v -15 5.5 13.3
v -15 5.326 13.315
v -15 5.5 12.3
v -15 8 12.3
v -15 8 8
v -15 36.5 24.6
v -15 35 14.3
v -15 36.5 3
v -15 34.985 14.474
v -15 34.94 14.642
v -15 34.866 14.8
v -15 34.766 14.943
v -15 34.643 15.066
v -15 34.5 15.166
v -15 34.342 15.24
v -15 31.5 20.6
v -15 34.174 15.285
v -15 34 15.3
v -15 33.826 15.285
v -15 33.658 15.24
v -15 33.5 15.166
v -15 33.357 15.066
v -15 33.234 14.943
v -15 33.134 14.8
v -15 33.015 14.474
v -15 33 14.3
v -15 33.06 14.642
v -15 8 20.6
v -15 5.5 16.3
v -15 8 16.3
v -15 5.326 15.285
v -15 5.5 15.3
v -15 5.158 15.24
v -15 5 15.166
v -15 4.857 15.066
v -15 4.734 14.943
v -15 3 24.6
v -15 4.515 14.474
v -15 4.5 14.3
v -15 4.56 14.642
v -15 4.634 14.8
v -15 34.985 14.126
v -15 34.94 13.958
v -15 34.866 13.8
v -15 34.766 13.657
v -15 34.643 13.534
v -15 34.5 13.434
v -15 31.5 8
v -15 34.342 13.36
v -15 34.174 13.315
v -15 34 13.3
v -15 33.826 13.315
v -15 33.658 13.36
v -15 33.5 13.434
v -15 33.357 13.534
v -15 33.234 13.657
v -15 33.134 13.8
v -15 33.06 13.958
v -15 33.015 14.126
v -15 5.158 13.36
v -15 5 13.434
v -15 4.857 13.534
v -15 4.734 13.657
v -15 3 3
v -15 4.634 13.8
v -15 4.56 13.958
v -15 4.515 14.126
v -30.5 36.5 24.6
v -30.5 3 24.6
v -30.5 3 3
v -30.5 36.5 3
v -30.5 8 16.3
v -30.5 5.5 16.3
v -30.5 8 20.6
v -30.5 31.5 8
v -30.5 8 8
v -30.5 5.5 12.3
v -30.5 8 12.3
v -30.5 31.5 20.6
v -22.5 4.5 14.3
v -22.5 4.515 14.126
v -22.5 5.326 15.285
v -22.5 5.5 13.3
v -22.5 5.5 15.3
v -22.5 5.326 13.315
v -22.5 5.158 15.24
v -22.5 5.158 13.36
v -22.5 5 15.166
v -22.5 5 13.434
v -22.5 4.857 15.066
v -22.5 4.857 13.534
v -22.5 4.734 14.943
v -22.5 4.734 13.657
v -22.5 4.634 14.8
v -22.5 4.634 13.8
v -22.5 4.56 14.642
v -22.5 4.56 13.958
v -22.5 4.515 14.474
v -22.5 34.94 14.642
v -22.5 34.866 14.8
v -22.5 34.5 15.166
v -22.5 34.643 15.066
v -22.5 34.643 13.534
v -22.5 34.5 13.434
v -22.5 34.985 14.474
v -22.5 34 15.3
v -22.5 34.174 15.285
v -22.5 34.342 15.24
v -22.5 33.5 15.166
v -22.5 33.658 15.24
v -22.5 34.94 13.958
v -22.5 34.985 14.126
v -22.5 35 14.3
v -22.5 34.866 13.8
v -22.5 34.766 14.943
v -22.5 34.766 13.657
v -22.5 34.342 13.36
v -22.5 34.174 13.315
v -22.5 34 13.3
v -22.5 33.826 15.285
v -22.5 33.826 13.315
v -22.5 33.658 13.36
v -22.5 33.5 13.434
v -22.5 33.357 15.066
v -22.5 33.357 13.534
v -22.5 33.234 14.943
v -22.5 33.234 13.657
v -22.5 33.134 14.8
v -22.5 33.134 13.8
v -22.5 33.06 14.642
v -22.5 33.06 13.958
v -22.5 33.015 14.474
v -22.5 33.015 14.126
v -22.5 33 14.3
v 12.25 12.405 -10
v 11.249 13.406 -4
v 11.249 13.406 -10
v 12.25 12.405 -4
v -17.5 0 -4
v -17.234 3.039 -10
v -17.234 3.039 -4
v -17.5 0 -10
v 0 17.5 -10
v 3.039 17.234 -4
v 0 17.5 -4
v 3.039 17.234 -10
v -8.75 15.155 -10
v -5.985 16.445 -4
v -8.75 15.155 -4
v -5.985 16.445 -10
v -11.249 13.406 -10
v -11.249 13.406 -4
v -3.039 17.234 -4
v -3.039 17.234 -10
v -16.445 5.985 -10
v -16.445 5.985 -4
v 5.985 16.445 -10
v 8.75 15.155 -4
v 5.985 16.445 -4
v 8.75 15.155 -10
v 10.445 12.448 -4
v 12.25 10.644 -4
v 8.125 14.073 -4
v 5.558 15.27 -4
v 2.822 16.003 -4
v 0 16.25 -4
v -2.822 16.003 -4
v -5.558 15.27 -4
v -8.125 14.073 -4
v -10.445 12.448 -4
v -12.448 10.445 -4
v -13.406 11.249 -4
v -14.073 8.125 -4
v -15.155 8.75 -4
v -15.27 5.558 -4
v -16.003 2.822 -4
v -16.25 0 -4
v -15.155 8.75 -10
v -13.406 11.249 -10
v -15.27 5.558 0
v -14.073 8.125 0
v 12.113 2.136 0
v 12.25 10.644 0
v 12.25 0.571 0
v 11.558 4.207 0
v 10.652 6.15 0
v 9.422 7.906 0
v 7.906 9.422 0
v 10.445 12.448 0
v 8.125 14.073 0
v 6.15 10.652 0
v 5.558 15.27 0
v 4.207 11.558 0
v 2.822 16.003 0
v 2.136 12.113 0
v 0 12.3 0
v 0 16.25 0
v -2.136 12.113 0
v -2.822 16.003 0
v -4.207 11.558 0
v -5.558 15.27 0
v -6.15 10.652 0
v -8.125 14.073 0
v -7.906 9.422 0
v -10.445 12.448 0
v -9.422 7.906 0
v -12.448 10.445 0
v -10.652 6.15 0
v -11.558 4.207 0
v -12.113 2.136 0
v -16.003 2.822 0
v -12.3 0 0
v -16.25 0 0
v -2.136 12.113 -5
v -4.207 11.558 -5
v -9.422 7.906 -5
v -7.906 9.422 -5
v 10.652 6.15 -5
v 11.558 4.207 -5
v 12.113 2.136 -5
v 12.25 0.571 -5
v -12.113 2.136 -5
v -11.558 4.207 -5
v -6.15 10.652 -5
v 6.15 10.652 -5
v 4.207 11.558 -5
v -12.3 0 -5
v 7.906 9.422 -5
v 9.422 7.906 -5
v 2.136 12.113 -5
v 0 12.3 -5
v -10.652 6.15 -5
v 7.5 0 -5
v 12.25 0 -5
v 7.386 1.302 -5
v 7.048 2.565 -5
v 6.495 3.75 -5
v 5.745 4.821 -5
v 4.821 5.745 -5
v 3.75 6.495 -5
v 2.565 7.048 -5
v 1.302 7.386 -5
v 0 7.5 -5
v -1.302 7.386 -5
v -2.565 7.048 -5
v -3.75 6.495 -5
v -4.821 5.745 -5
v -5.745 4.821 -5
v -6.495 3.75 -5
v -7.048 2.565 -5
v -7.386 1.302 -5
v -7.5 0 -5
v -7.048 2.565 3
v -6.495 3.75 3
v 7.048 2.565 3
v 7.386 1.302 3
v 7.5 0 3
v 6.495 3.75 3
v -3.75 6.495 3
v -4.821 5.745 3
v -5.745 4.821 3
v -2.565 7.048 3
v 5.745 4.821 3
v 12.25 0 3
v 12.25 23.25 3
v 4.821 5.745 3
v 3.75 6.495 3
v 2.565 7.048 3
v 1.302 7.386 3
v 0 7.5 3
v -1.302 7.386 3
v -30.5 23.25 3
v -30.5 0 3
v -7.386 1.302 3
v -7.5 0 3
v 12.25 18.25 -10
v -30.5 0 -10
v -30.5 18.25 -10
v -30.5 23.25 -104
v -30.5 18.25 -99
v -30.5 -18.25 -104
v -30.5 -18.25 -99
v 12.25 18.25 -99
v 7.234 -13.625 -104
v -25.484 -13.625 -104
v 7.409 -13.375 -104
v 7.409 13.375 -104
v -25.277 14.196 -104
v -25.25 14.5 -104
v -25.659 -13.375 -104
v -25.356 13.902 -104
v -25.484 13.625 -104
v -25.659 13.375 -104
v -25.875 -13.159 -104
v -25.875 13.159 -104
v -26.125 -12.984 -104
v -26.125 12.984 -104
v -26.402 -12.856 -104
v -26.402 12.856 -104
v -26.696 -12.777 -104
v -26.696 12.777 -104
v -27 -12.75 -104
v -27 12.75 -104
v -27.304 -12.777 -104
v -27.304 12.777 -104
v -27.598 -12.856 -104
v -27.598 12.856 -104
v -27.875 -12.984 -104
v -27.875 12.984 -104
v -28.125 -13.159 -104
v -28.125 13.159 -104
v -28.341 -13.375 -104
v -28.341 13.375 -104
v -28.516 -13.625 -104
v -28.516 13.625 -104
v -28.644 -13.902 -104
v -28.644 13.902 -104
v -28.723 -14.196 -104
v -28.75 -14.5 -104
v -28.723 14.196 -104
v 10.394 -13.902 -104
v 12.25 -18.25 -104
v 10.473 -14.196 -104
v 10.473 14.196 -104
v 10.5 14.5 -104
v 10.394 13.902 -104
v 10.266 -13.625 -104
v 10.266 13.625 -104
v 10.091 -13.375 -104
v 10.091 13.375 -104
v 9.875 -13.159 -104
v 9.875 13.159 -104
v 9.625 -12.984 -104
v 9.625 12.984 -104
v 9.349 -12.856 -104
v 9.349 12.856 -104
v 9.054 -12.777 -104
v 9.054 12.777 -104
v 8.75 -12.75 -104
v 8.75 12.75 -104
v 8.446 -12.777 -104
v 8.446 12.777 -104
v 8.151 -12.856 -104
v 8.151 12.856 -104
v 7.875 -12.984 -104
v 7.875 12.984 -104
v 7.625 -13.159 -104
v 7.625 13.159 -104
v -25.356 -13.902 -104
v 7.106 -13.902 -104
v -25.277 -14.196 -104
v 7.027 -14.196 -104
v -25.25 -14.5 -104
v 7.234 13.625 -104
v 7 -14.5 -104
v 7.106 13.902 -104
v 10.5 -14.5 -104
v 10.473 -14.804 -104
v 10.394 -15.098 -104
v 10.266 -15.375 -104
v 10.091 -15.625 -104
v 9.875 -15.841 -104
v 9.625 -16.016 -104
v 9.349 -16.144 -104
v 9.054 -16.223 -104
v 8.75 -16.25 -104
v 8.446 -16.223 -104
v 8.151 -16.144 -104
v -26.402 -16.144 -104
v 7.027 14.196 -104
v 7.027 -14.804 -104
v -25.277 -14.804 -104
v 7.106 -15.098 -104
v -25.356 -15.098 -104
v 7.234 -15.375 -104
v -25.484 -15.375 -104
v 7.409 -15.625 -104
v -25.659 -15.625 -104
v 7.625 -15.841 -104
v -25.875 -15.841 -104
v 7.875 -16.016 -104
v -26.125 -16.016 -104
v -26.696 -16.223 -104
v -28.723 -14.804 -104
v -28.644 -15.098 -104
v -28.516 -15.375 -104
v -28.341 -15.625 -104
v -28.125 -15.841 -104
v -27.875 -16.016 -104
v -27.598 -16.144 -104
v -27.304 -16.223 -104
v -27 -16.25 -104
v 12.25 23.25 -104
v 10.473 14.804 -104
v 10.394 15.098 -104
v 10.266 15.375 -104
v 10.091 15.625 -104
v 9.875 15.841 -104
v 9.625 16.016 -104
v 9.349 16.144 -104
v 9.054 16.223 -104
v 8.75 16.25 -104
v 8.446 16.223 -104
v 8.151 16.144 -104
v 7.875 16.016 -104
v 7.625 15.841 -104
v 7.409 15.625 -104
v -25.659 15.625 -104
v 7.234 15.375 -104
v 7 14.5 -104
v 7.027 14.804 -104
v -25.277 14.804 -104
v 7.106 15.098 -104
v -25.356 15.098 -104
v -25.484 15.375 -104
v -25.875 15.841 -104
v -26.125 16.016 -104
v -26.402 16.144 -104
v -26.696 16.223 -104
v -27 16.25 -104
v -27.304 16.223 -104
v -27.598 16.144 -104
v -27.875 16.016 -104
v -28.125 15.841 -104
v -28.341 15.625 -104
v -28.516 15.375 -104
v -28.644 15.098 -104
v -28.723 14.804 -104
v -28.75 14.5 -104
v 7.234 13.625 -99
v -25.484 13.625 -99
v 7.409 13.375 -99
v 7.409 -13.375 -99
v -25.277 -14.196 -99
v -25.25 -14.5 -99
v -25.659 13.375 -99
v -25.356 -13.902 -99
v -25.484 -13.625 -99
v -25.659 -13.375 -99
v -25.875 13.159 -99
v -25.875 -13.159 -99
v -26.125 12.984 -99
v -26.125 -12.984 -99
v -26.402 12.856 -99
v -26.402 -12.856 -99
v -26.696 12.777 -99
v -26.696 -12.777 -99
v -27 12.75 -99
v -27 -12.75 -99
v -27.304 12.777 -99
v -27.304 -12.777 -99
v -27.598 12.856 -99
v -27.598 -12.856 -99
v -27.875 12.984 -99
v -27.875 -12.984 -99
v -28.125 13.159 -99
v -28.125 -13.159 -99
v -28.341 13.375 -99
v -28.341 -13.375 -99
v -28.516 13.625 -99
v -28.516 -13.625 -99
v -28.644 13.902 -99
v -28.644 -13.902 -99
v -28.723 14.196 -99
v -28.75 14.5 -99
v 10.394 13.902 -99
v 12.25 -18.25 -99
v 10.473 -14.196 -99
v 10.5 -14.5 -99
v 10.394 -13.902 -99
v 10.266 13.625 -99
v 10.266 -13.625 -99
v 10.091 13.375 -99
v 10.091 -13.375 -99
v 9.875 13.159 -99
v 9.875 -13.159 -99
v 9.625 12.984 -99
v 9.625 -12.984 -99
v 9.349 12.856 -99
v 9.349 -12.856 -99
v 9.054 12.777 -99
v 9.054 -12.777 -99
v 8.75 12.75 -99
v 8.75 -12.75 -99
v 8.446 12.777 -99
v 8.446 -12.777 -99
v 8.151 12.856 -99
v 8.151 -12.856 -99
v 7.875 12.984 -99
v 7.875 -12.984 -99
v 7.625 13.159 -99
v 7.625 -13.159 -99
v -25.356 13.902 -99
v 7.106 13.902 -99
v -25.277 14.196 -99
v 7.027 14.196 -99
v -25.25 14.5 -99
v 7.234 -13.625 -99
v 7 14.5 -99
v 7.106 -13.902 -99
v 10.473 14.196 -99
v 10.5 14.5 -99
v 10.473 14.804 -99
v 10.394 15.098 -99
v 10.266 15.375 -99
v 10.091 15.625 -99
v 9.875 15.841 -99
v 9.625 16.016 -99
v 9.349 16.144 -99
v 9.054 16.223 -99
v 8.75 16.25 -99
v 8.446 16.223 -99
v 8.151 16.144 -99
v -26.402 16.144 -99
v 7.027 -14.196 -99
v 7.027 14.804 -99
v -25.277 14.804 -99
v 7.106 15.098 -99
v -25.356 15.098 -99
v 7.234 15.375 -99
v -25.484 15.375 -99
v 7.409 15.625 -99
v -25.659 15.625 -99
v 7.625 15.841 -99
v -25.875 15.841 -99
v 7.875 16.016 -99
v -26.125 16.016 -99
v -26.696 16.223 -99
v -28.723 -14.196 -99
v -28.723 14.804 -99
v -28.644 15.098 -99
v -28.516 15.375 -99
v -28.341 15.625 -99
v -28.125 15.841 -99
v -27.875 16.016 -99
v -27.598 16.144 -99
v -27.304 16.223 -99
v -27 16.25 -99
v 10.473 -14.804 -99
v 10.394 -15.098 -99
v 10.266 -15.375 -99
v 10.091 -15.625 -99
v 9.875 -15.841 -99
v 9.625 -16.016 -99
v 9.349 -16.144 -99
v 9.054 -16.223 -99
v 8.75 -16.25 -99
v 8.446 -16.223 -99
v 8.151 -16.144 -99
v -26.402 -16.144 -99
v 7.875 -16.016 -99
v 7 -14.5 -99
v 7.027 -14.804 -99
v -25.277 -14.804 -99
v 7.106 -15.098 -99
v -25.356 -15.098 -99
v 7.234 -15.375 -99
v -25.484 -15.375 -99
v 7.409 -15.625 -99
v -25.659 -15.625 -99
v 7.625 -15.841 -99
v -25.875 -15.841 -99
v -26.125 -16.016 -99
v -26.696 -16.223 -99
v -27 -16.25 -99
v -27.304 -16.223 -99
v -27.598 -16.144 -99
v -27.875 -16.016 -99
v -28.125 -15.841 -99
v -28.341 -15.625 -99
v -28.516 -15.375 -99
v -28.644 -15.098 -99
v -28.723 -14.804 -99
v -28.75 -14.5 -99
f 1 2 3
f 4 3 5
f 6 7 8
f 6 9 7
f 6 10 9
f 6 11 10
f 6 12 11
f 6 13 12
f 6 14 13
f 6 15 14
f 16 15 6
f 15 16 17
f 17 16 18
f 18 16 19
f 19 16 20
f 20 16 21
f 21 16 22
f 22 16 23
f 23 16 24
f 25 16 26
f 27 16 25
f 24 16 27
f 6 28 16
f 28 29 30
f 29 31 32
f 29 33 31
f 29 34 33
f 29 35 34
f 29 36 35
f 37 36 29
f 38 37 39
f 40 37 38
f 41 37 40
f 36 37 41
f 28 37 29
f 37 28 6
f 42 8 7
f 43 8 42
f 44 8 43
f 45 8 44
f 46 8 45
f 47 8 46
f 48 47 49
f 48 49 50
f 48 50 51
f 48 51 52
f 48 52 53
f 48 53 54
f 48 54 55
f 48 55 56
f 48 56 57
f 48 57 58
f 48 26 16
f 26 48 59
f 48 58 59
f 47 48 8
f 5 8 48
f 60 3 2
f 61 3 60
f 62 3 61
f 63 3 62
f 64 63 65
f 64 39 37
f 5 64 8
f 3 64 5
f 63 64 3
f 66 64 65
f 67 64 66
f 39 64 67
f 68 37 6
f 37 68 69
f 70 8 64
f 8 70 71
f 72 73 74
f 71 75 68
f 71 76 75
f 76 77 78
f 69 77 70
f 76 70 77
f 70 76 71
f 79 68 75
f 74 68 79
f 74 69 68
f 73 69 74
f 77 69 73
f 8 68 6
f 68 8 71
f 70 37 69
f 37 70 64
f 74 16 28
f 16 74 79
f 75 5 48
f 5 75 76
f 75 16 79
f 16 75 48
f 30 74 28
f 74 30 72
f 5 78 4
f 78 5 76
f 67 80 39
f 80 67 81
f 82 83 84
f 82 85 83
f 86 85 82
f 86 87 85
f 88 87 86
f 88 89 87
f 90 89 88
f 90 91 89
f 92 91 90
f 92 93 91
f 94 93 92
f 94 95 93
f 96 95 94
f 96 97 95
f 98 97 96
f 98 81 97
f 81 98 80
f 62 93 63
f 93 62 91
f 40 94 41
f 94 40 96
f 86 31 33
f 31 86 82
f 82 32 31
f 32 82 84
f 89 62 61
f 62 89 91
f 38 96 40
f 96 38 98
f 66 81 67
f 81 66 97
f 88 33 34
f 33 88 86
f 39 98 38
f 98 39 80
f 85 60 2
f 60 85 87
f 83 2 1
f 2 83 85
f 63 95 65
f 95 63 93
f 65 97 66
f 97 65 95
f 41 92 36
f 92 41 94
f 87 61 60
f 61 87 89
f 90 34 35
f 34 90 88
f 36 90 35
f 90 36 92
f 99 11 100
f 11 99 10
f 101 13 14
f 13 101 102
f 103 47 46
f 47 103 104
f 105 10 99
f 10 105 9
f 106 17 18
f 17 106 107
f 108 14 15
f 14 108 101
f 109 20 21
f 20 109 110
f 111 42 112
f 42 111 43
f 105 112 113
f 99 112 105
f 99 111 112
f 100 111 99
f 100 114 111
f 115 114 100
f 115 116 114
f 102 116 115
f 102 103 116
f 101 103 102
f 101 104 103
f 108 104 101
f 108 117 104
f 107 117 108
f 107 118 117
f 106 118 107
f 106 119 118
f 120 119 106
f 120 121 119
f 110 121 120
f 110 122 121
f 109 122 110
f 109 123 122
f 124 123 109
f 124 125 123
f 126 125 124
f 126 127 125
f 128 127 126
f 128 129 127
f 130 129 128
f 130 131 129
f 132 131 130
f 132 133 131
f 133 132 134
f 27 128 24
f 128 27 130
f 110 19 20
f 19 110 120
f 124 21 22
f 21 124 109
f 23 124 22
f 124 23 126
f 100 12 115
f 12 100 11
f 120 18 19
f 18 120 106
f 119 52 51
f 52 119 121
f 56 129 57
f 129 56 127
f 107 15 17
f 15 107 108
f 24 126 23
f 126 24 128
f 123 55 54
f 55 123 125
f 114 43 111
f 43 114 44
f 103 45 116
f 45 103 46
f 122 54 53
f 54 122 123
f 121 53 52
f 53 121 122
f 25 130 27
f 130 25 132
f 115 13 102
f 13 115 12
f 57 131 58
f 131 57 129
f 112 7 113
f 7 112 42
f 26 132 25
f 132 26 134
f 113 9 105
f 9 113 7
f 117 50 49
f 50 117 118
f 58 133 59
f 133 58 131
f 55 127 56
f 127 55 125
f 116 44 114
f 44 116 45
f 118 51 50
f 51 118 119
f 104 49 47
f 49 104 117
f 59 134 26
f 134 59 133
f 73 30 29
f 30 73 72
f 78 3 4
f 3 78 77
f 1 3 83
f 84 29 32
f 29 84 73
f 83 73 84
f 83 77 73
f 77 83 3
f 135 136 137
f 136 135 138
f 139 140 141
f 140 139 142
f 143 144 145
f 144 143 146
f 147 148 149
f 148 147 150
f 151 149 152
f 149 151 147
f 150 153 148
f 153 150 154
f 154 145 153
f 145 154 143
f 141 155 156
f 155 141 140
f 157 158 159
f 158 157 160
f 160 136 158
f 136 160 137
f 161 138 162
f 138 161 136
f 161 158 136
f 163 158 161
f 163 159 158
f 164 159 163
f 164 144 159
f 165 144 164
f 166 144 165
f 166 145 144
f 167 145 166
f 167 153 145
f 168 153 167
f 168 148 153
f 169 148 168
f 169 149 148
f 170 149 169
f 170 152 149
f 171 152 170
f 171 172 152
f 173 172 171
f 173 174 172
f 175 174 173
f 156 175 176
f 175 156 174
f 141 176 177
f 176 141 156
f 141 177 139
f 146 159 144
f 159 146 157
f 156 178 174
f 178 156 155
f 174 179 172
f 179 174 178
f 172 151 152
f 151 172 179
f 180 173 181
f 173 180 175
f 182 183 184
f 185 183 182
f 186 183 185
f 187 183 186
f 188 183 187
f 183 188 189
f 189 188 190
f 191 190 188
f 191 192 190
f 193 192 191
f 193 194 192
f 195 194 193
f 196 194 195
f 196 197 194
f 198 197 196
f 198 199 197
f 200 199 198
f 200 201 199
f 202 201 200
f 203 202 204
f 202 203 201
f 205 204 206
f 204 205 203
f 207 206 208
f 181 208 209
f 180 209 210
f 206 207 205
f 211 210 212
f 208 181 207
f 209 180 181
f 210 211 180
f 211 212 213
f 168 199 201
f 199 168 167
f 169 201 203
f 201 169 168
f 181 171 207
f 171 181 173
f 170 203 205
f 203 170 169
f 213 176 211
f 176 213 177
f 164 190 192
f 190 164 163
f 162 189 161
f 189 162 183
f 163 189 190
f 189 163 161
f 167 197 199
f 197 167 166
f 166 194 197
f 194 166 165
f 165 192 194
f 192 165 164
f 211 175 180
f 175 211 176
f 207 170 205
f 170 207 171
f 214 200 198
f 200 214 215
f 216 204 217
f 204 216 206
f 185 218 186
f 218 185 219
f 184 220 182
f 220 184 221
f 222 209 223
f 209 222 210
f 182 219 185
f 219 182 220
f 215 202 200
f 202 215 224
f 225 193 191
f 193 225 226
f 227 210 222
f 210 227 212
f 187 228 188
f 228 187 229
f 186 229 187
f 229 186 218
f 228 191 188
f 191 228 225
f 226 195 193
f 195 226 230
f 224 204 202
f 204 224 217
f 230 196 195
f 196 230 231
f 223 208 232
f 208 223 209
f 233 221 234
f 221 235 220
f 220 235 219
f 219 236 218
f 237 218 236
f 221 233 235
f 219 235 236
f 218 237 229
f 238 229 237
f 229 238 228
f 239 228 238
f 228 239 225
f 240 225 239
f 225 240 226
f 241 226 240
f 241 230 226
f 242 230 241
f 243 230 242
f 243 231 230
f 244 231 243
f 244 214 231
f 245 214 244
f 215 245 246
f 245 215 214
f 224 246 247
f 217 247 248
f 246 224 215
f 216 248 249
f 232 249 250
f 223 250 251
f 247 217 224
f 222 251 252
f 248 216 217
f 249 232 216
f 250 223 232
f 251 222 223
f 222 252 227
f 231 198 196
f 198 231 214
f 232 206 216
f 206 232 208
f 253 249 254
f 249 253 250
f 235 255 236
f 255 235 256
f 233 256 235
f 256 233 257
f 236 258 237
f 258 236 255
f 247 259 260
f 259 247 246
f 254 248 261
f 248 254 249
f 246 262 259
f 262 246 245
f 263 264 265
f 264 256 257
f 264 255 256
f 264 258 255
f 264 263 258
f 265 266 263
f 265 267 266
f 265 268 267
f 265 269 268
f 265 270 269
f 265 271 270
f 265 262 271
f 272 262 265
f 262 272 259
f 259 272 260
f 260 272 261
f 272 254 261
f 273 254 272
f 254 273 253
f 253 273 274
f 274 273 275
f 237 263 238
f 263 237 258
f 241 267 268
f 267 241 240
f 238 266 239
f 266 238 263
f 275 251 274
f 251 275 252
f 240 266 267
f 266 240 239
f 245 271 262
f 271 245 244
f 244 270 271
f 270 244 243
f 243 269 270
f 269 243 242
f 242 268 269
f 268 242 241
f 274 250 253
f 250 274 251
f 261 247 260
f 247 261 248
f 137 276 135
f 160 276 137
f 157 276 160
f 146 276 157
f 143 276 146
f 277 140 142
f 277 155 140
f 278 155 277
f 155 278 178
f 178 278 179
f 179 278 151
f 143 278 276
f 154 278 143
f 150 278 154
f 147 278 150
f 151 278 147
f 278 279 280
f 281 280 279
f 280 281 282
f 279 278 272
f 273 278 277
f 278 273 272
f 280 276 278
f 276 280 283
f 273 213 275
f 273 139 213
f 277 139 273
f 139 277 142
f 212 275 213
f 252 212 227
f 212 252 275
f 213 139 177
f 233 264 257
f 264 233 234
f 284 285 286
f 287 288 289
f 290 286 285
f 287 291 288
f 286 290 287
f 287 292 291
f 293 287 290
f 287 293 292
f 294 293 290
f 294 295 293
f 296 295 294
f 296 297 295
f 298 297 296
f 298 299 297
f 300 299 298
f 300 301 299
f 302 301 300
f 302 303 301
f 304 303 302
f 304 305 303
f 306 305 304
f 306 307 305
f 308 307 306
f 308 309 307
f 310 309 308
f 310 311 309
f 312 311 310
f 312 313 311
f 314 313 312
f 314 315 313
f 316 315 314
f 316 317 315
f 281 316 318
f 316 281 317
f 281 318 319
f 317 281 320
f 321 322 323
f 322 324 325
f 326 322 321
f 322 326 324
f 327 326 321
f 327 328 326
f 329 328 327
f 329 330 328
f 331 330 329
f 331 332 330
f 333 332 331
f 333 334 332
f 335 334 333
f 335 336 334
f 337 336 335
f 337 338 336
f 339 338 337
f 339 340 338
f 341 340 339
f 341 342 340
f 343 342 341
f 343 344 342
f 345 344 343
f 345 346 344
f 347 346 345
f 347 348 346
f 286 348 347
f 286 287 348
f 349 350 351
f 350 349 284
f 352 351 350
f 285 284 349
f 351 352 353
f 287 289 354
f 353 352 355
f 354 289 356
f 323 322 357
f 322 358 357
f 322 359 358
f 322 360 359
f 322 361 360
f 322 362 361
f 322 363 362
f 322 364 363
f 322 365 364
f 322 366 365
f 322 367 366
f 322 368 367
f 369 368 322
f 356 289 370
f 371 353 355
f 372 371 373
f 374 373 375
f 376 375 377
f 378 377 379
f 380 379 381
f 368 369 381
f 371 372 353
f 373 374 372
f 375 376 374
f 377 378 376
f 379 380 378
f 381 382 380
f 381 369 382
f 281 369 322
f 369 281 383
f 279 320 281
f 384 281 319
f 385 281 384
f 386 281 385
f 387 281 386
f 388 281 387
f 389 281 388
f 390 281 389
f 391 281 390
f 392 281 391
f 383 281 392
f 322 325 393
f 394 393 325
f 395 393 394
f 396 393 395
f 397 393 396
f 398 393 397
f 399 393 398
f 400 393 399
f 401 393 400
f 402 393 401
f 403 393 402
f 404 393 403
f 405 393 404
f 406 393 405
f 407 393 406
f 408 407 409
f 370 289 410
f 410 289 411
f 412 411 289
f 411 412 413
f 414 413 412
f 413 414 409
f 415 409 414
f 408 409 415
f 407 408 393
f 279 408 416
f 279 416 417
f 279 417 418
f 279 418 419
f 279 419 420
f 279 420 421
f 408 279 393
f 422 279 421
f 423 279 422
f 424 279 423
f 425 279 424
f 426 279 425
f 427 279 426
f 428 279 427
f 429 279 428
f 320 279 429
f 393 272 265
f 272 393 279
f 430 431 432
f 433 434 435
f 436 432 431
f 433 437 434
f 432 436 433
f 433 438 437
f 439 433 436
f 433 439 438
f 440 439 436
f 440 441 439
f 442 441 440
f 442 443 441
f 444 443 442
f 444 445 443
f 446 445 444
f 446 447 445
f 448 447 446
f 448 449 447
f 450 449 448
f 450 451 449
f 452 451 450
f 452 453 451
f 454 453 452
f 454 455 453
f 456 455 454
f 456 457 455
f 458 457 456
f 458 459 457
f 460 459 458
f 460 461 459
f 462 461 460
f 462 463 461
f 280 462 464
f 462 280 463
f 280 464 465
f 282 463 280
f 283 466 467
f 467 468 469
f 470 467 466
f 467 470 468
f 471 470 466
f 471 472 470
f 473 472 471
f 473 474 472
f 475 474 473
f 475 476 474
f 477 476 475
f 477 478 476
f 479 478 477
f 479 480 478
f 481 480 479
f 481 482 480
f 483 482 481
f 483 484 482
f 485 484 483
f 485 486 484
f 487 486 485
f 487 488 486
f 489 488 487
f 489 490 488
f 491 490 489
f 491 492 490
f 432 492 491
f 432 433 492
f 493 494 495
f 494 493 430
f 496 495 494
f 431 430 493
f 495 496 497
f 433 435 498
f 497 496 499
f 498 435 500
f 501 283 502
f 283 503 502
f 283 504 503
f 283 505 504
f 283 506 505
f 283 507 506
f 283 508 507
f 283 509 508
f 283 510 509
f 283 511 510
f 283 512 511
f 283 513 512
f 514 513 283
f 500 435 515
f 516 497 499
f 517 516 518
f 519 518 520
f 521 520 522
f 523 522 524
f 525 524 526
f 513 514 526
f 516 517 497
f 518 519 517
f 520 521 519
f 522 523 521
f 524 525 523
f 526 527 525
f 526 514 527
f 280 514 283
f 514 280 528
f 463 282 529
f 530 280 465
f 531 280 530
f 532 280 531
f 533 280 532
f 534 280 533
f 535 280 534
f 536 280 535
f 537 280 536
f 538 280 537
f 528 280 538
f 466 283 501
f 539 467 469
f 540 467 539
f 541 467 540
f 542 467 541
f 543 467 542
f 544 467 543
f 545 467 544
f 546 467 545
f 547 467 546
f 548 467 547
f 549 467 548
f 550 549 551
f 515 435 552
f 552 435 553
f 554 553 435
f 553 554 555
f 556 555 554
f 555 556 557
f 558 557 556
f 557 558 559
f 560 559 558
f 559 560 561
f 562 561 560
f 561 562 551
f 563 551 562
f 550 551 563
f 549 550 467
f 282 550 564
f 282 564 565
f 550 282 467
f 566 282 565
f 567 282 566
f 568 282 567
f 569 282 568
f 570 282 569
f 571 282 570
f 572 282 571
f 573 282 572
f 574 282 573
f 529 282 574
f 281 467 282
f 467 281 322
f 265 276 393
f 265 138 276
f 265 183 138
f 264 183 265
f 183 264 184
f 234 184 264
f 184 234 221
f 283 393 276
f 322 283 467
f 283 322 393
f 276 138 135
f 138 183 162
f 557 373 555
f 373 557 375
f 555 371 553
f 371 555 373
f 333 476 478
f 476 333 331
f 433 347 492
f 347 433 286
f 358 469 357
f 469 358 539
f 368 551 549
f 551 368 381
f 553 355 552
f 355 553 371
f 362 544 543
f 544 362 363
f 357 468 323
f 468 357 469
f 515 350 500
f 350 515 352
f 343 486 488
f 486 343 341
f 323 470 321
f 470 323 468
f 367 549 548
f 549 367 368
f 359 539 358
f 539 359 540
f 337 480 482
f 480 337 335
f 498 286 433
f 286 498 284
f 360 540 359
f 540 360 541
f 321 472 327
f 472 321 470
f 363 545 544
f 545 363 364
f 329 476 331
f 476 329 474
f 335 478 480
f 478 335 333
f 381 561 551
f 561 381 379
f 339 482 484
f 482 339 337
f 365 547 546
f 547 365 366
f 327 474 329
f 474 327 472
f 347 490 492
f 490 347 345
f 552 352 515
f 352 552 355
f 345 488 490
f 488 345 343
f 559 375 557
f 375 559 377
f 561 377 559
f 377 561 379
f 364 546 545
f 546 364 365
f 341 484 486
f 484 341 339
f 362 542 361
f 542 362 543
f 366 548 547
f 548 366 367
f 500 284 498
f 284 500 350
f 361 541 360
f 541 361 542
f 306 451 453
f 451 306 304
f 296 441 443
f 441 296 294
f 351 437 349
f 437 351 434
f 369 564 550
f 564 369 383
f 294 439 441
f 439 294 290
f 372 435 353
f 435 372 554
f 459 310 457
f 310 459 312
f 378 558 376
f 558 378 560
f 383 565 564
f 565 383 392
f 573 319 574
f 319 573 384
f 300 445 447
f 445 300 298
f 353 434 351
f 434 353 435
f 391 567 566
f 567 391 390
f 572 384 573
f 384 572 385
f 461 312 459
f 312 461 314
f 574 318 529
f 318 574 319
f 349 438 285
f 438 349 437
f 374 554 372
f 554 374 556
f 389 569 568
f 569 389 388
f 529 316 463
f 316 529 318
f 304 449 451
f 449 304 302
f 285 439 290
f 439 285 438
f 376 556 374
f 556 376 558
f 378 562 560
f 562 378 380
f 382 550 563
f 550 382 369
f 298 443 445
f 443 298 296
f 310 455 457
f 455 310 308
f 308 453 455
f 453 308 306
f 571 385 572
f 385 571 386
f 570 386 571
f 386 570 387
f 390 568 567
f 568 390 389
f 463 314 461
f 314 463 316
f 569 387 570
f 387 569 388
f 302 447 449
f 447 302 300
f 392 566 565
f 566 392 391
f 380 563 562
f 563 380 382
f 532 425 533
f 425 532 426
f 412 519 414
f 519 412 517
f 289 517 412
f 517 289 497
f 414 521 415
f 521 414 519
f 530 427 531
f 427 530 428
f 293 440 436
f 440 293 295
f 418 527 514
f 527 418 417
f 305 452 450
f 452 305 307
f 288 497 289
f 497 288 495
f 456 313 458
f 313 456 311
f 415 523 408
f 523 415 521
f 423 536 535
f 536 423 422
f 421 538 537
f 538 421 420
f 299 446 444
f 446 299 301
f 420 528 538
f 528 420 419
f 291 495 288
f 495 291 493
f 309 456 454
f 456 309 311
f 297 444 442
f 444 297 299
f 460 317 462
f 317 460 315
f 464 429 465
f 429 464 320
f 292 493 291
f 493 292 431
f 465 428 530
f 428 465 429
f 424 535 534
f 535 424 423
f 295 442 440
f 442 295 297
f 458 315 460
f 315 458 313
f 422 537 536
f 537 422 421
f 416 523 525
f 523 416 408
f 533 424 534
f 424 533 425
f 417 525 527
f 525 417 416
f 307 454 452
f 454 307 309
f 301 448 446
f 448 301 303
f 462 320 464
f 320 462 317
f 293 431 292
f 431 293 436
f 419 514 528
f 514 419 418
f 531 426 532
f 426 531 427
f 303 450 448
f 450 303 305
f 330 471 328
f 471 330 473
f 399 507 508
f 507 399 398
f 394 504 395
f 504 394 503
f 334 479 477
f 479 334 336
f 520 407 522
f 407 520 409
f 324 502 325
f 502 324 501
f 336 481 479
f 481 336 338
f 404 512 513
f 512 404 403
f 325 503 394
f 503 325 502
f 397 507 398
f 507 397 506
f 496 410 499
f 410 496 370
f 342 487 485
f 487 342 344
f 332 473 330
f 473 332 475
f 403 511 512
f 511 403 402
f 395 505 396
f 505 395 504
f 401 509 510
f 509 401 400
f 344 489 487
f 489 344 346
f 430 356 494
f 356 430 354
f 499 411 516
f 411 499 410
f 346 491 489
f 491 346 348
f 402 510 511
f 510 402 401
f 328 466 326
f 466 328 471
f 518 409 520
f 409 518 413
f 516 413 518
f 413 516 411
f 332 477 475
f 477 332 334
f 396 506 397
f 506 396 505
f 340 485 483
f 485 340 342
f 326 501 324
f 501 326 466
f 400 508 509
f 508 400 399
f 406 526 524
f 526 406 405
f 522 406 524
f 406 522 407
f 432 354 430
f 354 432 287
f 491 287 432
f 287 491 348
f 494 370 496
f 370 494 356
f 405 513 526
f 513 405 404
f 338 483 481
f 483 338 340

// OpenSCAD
//flamebreathing
//justin lowe 20210722

//generic holder for thing to make flame

draftingFNs = 36;
renderFNs = 180;
$fn = draftingFNs;

//Potential TODO: 
// -arduino mount - back of mount? Likely better if arduino board is not connected to this, so we don't have to worry about balance or overall placement of this mount inside pupmkin

/*Description of 3d model
-xy plane will be the top of metal part of can. so nozzle on positive side. nozzle centered on z axis.
-half ring with lip to hold can in place on top.
-servo cutout, at appropriate place relative to nozzle
*/
/*Design Choices
-This mount holds can and servo. Does not have tea light or sparker holder, mostly for time, partly to allow for more flexible placements
-servo is well mounted with just one screw, at back edge away from nozzle
-does not have arduino mount - would possibly unbalance it, also too many different form factors to consider
-best placement of tea light was found to be roughly 1.5" below nozzle, and 3" away from nozzle. Still didn't work great :-/ But I guess I'd rather it fail to ignite, than fail to not ignite/stop...
-print with the common plane of servo holder 'back' and 'side' of can holder flat on build plate (YZ Plane in openscad view) Some supports recommended for lip of can holder
*/
/* Bill Of Materials
-Tresemme Hairspray can, 1.5oz travel size, bought at Target
-servo, used Tower Pro SG92R Microservo - https://www.adafruit.com/product/169
//the rest doesn't interact with this model/holder, but fyi:
-arduino, only three IO pins used so almost any should be fine, could go down to two pins. Arduino Uno used in this instance.
-Passive Infrared (PIR) Sensor - bought long ago from Radioshack, soo... Paralax PIR Sensor, Rev B, SKU 555-28027 https://www.parallax.com/product/pir-sensor-with-led-signal/
    -other PIR sensors shoudl work, but arduino code may need to be changed
-breadboard
-button and resistor, if you want fire on demand w/o waving your hand in front of PIR.
*/
//


//// properties of physical objects
// hairspray can, specifically tresemme 1.5oz travel size
canTopOuterDiameter = 32.5; //actual
canTopInnerDiameter = 24.6; //actual
canBodyDiameter = 35; //actual
canHeight = 99; //98; //actual
canTopLipInnerDepth = 5; //5.5; //actual
canTopLipOuterDepth = 4; //3.75; //actual
nozzleDiameter = 15; //room for nozzle to rotate forward & down when pressed //13.5; //actual, about 1mm larger than metal can part below it
nozzleHeight = 15;  //actual, height of nozzle plus a tiny bit of the stem above can top

// servo
servoWidth = 23.5; //22.7; //actual
servoHeight = 12.6; //actual 12.6 at rear by wires, 11.9 by servo arm...
servoDepthBehindEars = 15.5; //actual //IDEA: how much can I shorten this, before servo housing starts to torque when arm depresses? Or is it worth it to have wide base here, so leave this?
servoDepthEarsToWires = 9.75; //actual
servoWiresWidth = 2.5;  //1.75; //actual //IDEA - could angle this channel so there is more material for screw (holding servo in) to grip at forward edge, but still not crimping wires at back edge
servoWiresHeight = 4; //actual
servoDepthTopToBottomOfEars = 7; //actual
servoCenterArmToBottomEars = 15.5; //actual, ie how far to the side to place servo to line up servo arm with nozzle
servoArmLength = 16;
servoMountingScrewInnerShaftDiameter = 2; //1.6; //actual-ish wasn't too bad but sides did buldge some
servoMountingScrewInnerShaftLength = 7.5; //actual-ish
servoMountingHoleHorizontalInset = 2.5; //actual


//// properties of holder/model
platformCanTopHeight = 3;
platformCanTopHorizontalPadding = 2; //how far for retention block to go past can diameter
platformCanBottomHeight = 5;
holderBackplaneDepth = 5;
servoHolderVerticalPadding = 4;
servoHolderHorizontalPadding = 5;
servoArmHorizontalSetback = nozzleDiameter/2; //half nozzle diameter?
servoHorizontalSetback = 8; //measured rough placement, y direction movement
servoHorizontalShift = 15; //x direction movement
servoVerticalAdjustment = 5; //rough measurement of how far above top of can should the bottom of the servo housing be, in order to hit the nozzle well
platformCanBottomMountingHoleDiameter = 3.5; //meh?

modelCutoffWidth = 6; //this is what removes material from side of holder - currently chosen to align closely wiht inner ring of can holder, could likey be less and still hold can in well but was considering stabilty of base


difference(){
    union(){
        //holds on to top of can around nozzle and inside lip of can
        difference(){
            //portion to go into/around lip of can
            translate([(canTopOuterDiameter/2+platformCanTopHorizontalPadding)/2-(servoHorizontalShift+servoDepthBehindEars)/2,(canTopOuterDiameter/2+platformCanTopHorizontalPadding)/2,-canTopLipInnerDepth+platformCanTopHeight/2]){
        
                cube([(servoHorizontalShift+servoDepthBehindEars)+canTopOuterDiameter/2+platformCanTopHorizontalPadding,canTopOuterDiameter/2+platformCanTopHorizontalPadding,canTopLipInnerDepth*2+platformCanTopHeight],true);
            }
            
            //remove can area
            makeCanTresemme(); 
        } //end difference of cube to can to hold on to top of can
        
        //backplane of holder
        translate([(canTopOuterDiameter/2+platformCanTopHorizontalPadding)/2-(servoHorizontalShift+servoDepthBehindEars)/2,holderBackplaneDepth/2+(canTopOuterDiameter+platformCanTopHorizontalPadding*2)/2,platformCanTopHeight/2-(canHeight+platformCanBottomHeight)/2]){
            cube([(servoHorizontalShift+servoDepthBehindEars)+canTopOuterDiameter/2+platformCanTopHorizontalPadding,holderBackplaneDepth,platformCanTopHeight+canHeight+platformCanBottomHeight],true);
        }
        
        //bottom of holder
        translate([(canTopOuterDiameter/2+platformCanTopHorizontalPadding)/2-(servoHorizontalShift+servoDepthBehindEars)/2,0,-canHeight-platformCanBottomHeight/2]){
            cube([(servoHorizontalShift+servoDepthBehindEars)+canTopOuterDiameter/2+platformCanTopHorizontalPadding,canTopOuterDiameter+platformCanTopHorizontalPadding*2,platformCanBottomHeight],true);
        }
        
        //servo holder
        difference(){
            //cutout for servo body
            translate([-servoHorizontalShift-(servoDepthBehindEars)/2,(servoWidth/2)+servoHorizontalSetback,(servoHeight)/2+platformCanTopHeight+servoVerticalAdjustment]){
                difference(){
                    translate([0,0,(servoHolderVerticalPadding-servoVerticalAdjustment)/2]){
                    cube([servoDepthBehindEars,servoWidth+servoHolderHorizontalPadding*2,servoHeight+servoHolderVerticalPadding+servoVerticalAdjustment],true);
                    }
                    //main cutout for servo body
                    cube([servoDepthBehindEars,servoWidth,servoHeight],true);                 
                }//end difference for cutout for servo body
            }
            
            //forward side servo mounting hole
            translate([-servoHorizontalShift,servoHorizontalSetback-servoMountingHoleHorizontalInset,(servoHeight)/2+platformCanTopHeight+servoVerticalAdjustment]){
                rotate([0,-90,0]){
                    cylinder(servoMountingScrewInnerShaftLength, servoMountingScrewInnerShaftDiameter/2, servoMountingScrewInnerShaftDiameter/2);
                }
            }
            //rear side servo mounting hole
            translate([-servoHorizontalShift,servoHorizontalSetback+servoWidth+servoMountingHoleHorizontalInset,(servoHeight)/2+platformCanTopHeight+servoVerticalAdjustment]){
                rotate([0,-90,0]){
                    cylinder(servoMountingScrewInnerShaftLength, servoMountingScrewInnerShaftDiameter/2, servoMountingScrewInnerShaftDiameter/2);
                }
            }
            
            //cutout for wires for servo body
            translate([-servoHorizontalShift-servoDepthBehindEars,servoHorizontalSetback-servoWiresWidth,(servoHeight)/2+platformCanTopHeight+servoVerticalAdjustment-servoWiresHeight/2]){
                cube([servoDepthBehindEars,servoWiresWidth*1.01,servoWiresHeight]);
            }
        } //end differnce for servo mounting holes
    }//end union of all

    translate([canTopOuterDiameter/2+platformCanTopHorizontalPadding-modelCutoffWidth,-(canTopOuterDiameter+platformCanTopHorizontalPadding*2)/2,-(canHeight+platformCanBottomHeight)]){
        cube([modelCutoffWidth,canTopOuterDiameter+platformCanTopHorizontalPadding*2+holderBackplaneDepth,platformCanTopHeight+canHeight+platformCanBottomHeight]);
    }
    
    //make mounting hole in bottom of plate
    translate([canTopOuterDiameter/2+platformCanTopHorizontalPadding-modelCutoffWidth-platformCanBottomMountingHoleDiameter,-(canTopOuterDiameter-platformCanBottomMountingHoleDiameter)/2,-(canHeight+platformCanBottomHeight)]){
        cylinder(platformCanBottomHeight, platformCanBottomMountingHoleDiameter/2, platformCanBottomMountingHoleDiameter/2);
    }
    
    translate([-(servoHorizontalShift+servoDepthBehindEars)+platformCanBottomMountingHoleDiameter,-(canTopOuterDiameter-platformCanBottomMountingHoleDiameter)/2,-(canHeight+platformCanBottomHeight)]){
        cylinder(platformCanBottomHeight, platformCanBottomMountingHoleDiameter/2, platformCanBottomMountingHoleDiameter/2);
    }
        
    translate([-(servoHorizontalShift+servoDepthBehindEars)+platformCanBottomMountingHoleDiameter,(canTopOuterDiameter-platformCanBottomMountingHoleDiameter)/2,-(canHeight+platformCanBottomHeight)]){
        cylinder(platformCanBottomHeight, platformCanBottomMountingHoleDiameter/2, platformCanBottomMountingHoleDiameter/2);
    }
        
    translate([canTopOuterDiameter/2+platformCanTopHorizontalPadding-modelCutoffWidth-platformCanBottomMountingHoleDiameter,(canTopOuterDiameter-platformCanBottomMountingHoleDiameter)/2,-(canHeight+platformCanBottomHeight)]){
        cylinder(platformCanBottomHeight, platformCanBottomMountingHoleDiameter/2, platformCanBottomMountingHoleDiameter/2);
    }
}
    


//Module to make shape of can of tresemme hairspray, 1.5oz travel size
module makeCanTresemme() {
    difference(){
        union(){//can body
            //main can body
            translate([0,0,-canHeight]){
                cylinder(canHeight-canTopLipOuterDepth,canBodyDiameter/2,canBodyDiameter/2);
            }
            
            //upper part of can body
            translate([0,0,-canTopLipOuterDepth]){
                //ridge around edge of can
                cylinder(canTopLipOuterDepth,canTopOuterDiameter/2,canTopOuterDiameter/2);   
            }
        }//end union can body 
        
        translate([0,0,-canTopLipInnerDepth]){
            //inside wall of ring
            cylinder(canTopLipInnerDepth,canTopInnerDiameter/2,canTopInnerDiameter/2);
        }
    }//end difference of inner lip from can body
    
    translate([0,0,-canTopLipInnerDepth]){
        //interior stem
        cylinder(canTopLipInnerDepth+platformCanTopHeight,nozzleDiameter/2,nozzleDiameter/2);
    }
} //end makeCanTresemme()
//whitespace holder


/*code to save for now?
////just can top
//difference(){
//    //portion to go into/around lip of can
//    translate([0,0,-canTopLipInnerDepth+platformCanTopHeight/2]){
//
//        cube([canTopOuterDiameter+platformCanTopHorizontalPadding*2,canTopOuterDiameter+platformCanTopHorizontalPadding*2,canTopLipInnerDepth*2+platformCanTopHeight],true);
//    }
//    
//    //remove can area
//    makeCan();
//    
//    //remove front half of rings
//    translate([0,-(canTopOuterDiameter+platformCanTopHorizontalPadding*2)/2,-canTopLipInnerDepth+platformCanTopHeight/2]){
//        cube([canTopOuterDiameter+platformCanTopHorizontalPadding*2,canTopOuterDiameter+platformCanTopHorizontalPadding*2,canTopLipInnerDepth*2+platformCanTopHeight],true);
//    }
//}
*/
